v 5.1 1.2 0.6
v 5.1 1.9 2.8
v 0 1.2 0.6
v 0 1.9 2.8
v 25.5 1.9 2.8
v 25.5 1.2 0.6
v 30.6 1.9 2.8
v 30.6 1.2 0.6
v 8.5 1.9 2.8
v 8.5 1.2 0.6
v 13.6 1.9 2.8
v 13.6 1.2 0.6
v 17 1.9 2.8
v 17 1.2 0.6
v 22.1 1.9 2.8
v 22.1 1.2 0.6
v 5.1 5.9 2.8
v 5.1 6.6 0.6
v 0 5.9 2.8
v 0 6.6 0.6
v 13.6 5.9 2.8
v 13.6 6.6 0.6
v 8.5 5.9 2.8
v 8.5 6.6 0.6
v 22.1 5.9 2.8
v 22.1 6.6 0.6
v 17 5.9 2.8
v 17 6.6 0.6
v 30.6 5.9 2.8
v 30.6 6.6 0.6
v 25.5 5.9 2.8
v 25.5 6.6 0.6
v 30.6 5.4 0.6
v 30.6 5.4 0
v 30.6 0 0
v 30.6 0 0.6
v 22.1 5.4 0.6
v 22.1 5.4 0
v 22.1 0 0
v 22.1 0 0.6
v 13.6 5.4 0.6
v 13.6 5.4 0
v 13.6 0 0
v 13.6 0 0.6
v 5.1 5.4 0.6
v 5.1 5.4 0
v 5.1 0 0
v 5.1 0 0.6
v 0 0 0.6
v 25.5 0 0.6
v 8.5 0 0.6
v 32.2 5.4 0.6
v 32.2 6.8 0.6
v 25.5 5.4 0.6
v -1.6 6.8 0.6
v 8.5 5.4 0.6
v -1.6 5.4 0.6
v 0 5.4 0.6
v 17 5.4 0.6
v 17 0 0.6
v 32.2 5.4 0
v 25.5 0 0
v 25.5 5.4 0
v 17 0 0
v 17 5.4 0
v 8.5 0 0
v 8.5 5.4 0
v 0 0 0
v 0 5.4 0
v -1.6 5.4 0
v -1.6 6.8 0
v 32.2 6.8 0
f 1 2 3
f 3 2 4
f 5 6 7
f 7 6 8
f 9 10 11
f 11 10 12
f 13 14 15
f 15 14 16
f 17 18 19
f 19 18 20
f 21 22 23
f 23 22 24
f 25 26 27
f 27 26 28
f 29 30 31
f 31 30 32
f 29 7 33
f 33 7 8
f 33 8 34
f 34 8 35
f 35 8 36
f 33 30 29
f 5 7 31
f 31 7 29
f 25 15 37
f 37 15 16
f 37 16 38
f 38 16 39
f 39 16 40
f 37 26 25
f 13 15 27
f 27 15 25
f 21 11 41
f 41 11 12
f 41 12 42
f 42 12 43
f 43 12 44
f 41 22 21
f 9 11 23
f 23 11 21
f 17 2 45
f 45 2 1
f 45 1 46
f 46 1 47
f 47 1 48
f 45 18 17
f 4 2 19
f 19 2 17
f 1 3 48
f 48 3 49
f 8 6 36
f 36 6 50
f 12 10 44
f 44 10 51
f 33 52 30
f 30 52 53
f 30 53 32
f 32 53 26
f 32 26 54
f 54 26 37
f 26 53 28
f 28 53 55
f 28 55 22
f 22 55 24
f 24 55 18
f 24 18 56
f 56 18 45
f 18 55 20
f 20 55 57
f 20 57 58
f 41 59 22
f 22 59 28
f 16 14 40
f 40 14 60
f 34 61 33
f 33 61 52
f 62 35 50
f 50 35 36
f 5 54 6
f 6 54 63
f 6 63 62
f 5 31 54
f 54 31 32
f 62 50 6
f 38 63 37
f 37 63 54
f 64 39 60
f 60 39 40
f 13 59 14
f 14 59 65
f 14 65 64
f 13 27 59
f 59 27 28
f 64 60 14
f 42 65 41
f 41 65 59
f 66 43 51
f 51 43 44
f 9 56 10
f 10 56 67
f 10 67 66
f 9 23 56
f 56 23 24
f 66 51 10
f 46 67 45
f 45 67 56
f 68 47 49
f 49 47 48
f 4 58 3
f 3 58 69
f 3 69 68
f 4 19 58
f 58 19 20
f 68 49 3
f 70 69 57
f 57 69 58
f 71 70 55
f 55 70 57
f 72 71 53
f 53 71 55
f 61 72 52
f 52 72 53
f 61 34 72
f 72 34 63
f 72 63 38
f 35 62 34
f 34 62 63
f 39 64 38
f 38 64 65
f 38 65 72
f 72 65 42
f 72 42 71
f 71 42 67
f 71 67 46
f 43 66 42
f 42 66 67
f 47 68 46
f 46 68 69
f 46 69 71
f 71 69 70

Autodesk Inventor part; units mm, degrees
ref_plane "YZ Plane" through (0, 0, 0) normal (1, 0, 0) x (0, 1, 0)
ref_plane "XZ Plane" through (0, 0, 0) normal (0, 1, 0) x (-1, 0, 0)
ref_plane "XY Plane" through (0, 0, 0) normal (0, 0, 1) x (1, 0, 0)
sketch "Эскиз1" plane through (0, 0, 0) normal (0, 0, 1) x (1, 0, 0)
  line L0 (0, 0) -> (5.1, 0)
  line L1 (5.1, 0) -> (5.1, 6.8)
  line L2 (5.1, 6.8) -> (0, 6.8)
  line L3 (0, 6.8) -> (0, 0)
  line L4 (8.5, 0) -> (13.6, 0)
  line L5 (13.6, 0) -> (13.6, 6.8)
  line L6 (13.6, 6.8) -> (8.5, 6.8)
  line L7 (8.5, 6.8) -> (8.5, 0)
  line L8 (17, 0) -> (22.1, 0)
  line L9 (22.1, 0) -> (22.1, 6.8)
  line L10 (22.1, 6.8) -> (17, 6.8)
  line L11 (17, 6.8) -> (17, 0)
  line L12 (25.5, 0) -> (30.6, 0)
  line L13 (30.6, 0) -> (30.6, 6.8)
  line L14 (30.6, 6.8) -> (25.5, 6.8)
  line L15 (25.5, 6.8) -> (25.5, 0)
  line L16 (5.1, 6.8) -> (8.5, 6.8)
  line L17 (13.6, 6.8) -> (17, 6.8)
  line L18 (22.1, 6.8) -> (25.5, 6.8)
  line L19 (22.1, 5.4) -> (25.5, 5.4)
  line L20 (17, 5.4) -> (13.6, 5.4)
  line L21 (8.5, 5.4) -> (5.1, 5.4)
  line L22 (0, 5.4) -> (-1.6, 5.4)
  line L23 (-1.6, 5.4) -> (-1.6, 6.8)
  line L24 (-1.6, 6.8) -> (0, 6.8)
  line L25 (0, 6.8) -> (0, 5.4)
  line L26 (30.6, 5.4) -> (32.2, 5.4)
  line L27 (32.2, 5.4) -> (32.2, 6.8)
  line L28 (32.2, 6.8) -> (30.6, 6.8)
  line L29 (30.6, 6.8) -> (30.6, 5.4)
  dimension "d0" = 5.1
  dimension "d1" = 6.8
  dimension "d4" = 8.5
  dimension "d9" = 1.4
  dimension "d10" = 1.6
extrude "Выдавливание1" add sketch "Эскиз1" along normal blind 0.6
sketch "Эскиз2" plane through (0, 0, 0.6) normal (0, 0, 1) x (1, 0, 0)
  line L0 (0, 5.4) -> (0, 0) projected
  line L1 (5.1, 0) -> (5.1, 5.4) projected
  line L2 (0, 1.2) -> (5.1, 1.2)
  line L3 (5.1, 1.2) -> (5.1, 6.6)
  line L4 (5.1, 6.6) -> (0, 6.6)
  line L5 (0, 6.6) -> (0, 1.2)
  line L6 (8.5, 5.4) -> (8.5, 0) projected
  line L7 (13.6, 0) -> (13.6, 5.4) projected
  line L8 (8.5, 1.2) -> (13.6, 1.2)
  line L9 (13.6, 1.2) -> (13.6, 6.6)
  line L10 (13.6, 6.6) -> (8.5, 6.6)
  line L11 (8.5, 6.6) -> (8.5, 1.2)
  line L12 (17, 5.4) -> (17, 0) projected
  line L13 (22.1, 0) -> (22.1, 5.4) projected
  line L14 (17, 1.2) -> (22.1, 1.2)
  line L15 (22.1, 1.2) -> (22.1, 6.6)
  line L16 (22.1, 6.6) -> (17, 6.6)
  line L17 (17, 6.6) -> (17, 1.2)
  line L18 (25.5, 5.4) -> (25.5, 0) projected
  line L19 (30.6, 0) -> (30.6, 5.4) projected
  line L20 (25.5, 1.2) -> (30.6, 1.2)
  line L21 (30.6, 1.2) -> (30.6, 6.6)
  line L22 (30.6, 6.6) -> (25.5, 6.6)
  line L23 (25.5, 6.6) -> (25.5, 1.2)
  line L24 (0, 0) -> (5.1, 0) projected
  line L25 (32.2, 6.8) -> (-1.6, 6.8) projected
  point P0 (25.5, 5.5)
  point P1 (30.6, 1.2)
  point P2 (17, 5.5)
  point P3 (8.5, 5.5)
  point P4 (0, 5.5)
  dimension "d14" = 5.4
  dimension "d21" = 0.2
extrude "Выдавливание2" add sketch "Эскиз2" along normal blind 2.2 contours L5 L4 L3 L1 L2 L0 | L11 L10 L9 L7 L8 L6 | L17 L16 L15 L13 L14 L12 | L23 L22 L21 L19 L20 L18
sketch "Эскиз3" plane through (0, 0, 0) normal (-1, 0, 0) x (0, 0, 1)
  line L0 (0.6, 1.2) -> (2.8, 1.9)
  line L1 (0, 5.4) -> (0, 0) projected
  line L2 (0, 0) -> (0.6, 0) projected
  line L3 (0.6, 1.2) -> (0.6, 0) projected
  line L4 (0.6, 1.2) -> (2.8, 1.2) projected
  line L5 (2.8, 6.6) -> (2.8, 1.2) projected
  line L6 (0.6, 5.4) -> (0.6, 6.6) projected
  line L7 (0, 5.4) -> (0.6, 5.4) projected
  line L8 (0.6, 1.2) -> (2.8, 1.2)
  line L9 (0.6, 6.6) -> (2.8, 6.6)
  line L10 (0.6, 6.6) -> (2.8, 5.9)
  line L11 (2.8, 1.2) -> (2.8, 6.6) projected
  line L12 (2.8, 1.9) -> (2.8, 1.2)
  line L13 (0.6, 6.6) -> (2.8, 6.6) projected
  line L14 (0.6, 6.8) -> (0.6, 5.4) projected
  line L15 (2.8, 6.6) -> (2.8, 1.2) projected
  line L16 (2.8, 5.9) -> (2.8, 6.6)
  point P0 (2.8, 1.9)
  point P1 (2, 5.8)
  point P2 (2, 5.6739)
  point P3 (2, 5.8)
  dimension "d18" = 4
extrude "Выдавливание3" cut sketch "Эскиз3" against normal through all contours L0 L5 L4 | L10 L9 L5
properties part number "Buttons"
